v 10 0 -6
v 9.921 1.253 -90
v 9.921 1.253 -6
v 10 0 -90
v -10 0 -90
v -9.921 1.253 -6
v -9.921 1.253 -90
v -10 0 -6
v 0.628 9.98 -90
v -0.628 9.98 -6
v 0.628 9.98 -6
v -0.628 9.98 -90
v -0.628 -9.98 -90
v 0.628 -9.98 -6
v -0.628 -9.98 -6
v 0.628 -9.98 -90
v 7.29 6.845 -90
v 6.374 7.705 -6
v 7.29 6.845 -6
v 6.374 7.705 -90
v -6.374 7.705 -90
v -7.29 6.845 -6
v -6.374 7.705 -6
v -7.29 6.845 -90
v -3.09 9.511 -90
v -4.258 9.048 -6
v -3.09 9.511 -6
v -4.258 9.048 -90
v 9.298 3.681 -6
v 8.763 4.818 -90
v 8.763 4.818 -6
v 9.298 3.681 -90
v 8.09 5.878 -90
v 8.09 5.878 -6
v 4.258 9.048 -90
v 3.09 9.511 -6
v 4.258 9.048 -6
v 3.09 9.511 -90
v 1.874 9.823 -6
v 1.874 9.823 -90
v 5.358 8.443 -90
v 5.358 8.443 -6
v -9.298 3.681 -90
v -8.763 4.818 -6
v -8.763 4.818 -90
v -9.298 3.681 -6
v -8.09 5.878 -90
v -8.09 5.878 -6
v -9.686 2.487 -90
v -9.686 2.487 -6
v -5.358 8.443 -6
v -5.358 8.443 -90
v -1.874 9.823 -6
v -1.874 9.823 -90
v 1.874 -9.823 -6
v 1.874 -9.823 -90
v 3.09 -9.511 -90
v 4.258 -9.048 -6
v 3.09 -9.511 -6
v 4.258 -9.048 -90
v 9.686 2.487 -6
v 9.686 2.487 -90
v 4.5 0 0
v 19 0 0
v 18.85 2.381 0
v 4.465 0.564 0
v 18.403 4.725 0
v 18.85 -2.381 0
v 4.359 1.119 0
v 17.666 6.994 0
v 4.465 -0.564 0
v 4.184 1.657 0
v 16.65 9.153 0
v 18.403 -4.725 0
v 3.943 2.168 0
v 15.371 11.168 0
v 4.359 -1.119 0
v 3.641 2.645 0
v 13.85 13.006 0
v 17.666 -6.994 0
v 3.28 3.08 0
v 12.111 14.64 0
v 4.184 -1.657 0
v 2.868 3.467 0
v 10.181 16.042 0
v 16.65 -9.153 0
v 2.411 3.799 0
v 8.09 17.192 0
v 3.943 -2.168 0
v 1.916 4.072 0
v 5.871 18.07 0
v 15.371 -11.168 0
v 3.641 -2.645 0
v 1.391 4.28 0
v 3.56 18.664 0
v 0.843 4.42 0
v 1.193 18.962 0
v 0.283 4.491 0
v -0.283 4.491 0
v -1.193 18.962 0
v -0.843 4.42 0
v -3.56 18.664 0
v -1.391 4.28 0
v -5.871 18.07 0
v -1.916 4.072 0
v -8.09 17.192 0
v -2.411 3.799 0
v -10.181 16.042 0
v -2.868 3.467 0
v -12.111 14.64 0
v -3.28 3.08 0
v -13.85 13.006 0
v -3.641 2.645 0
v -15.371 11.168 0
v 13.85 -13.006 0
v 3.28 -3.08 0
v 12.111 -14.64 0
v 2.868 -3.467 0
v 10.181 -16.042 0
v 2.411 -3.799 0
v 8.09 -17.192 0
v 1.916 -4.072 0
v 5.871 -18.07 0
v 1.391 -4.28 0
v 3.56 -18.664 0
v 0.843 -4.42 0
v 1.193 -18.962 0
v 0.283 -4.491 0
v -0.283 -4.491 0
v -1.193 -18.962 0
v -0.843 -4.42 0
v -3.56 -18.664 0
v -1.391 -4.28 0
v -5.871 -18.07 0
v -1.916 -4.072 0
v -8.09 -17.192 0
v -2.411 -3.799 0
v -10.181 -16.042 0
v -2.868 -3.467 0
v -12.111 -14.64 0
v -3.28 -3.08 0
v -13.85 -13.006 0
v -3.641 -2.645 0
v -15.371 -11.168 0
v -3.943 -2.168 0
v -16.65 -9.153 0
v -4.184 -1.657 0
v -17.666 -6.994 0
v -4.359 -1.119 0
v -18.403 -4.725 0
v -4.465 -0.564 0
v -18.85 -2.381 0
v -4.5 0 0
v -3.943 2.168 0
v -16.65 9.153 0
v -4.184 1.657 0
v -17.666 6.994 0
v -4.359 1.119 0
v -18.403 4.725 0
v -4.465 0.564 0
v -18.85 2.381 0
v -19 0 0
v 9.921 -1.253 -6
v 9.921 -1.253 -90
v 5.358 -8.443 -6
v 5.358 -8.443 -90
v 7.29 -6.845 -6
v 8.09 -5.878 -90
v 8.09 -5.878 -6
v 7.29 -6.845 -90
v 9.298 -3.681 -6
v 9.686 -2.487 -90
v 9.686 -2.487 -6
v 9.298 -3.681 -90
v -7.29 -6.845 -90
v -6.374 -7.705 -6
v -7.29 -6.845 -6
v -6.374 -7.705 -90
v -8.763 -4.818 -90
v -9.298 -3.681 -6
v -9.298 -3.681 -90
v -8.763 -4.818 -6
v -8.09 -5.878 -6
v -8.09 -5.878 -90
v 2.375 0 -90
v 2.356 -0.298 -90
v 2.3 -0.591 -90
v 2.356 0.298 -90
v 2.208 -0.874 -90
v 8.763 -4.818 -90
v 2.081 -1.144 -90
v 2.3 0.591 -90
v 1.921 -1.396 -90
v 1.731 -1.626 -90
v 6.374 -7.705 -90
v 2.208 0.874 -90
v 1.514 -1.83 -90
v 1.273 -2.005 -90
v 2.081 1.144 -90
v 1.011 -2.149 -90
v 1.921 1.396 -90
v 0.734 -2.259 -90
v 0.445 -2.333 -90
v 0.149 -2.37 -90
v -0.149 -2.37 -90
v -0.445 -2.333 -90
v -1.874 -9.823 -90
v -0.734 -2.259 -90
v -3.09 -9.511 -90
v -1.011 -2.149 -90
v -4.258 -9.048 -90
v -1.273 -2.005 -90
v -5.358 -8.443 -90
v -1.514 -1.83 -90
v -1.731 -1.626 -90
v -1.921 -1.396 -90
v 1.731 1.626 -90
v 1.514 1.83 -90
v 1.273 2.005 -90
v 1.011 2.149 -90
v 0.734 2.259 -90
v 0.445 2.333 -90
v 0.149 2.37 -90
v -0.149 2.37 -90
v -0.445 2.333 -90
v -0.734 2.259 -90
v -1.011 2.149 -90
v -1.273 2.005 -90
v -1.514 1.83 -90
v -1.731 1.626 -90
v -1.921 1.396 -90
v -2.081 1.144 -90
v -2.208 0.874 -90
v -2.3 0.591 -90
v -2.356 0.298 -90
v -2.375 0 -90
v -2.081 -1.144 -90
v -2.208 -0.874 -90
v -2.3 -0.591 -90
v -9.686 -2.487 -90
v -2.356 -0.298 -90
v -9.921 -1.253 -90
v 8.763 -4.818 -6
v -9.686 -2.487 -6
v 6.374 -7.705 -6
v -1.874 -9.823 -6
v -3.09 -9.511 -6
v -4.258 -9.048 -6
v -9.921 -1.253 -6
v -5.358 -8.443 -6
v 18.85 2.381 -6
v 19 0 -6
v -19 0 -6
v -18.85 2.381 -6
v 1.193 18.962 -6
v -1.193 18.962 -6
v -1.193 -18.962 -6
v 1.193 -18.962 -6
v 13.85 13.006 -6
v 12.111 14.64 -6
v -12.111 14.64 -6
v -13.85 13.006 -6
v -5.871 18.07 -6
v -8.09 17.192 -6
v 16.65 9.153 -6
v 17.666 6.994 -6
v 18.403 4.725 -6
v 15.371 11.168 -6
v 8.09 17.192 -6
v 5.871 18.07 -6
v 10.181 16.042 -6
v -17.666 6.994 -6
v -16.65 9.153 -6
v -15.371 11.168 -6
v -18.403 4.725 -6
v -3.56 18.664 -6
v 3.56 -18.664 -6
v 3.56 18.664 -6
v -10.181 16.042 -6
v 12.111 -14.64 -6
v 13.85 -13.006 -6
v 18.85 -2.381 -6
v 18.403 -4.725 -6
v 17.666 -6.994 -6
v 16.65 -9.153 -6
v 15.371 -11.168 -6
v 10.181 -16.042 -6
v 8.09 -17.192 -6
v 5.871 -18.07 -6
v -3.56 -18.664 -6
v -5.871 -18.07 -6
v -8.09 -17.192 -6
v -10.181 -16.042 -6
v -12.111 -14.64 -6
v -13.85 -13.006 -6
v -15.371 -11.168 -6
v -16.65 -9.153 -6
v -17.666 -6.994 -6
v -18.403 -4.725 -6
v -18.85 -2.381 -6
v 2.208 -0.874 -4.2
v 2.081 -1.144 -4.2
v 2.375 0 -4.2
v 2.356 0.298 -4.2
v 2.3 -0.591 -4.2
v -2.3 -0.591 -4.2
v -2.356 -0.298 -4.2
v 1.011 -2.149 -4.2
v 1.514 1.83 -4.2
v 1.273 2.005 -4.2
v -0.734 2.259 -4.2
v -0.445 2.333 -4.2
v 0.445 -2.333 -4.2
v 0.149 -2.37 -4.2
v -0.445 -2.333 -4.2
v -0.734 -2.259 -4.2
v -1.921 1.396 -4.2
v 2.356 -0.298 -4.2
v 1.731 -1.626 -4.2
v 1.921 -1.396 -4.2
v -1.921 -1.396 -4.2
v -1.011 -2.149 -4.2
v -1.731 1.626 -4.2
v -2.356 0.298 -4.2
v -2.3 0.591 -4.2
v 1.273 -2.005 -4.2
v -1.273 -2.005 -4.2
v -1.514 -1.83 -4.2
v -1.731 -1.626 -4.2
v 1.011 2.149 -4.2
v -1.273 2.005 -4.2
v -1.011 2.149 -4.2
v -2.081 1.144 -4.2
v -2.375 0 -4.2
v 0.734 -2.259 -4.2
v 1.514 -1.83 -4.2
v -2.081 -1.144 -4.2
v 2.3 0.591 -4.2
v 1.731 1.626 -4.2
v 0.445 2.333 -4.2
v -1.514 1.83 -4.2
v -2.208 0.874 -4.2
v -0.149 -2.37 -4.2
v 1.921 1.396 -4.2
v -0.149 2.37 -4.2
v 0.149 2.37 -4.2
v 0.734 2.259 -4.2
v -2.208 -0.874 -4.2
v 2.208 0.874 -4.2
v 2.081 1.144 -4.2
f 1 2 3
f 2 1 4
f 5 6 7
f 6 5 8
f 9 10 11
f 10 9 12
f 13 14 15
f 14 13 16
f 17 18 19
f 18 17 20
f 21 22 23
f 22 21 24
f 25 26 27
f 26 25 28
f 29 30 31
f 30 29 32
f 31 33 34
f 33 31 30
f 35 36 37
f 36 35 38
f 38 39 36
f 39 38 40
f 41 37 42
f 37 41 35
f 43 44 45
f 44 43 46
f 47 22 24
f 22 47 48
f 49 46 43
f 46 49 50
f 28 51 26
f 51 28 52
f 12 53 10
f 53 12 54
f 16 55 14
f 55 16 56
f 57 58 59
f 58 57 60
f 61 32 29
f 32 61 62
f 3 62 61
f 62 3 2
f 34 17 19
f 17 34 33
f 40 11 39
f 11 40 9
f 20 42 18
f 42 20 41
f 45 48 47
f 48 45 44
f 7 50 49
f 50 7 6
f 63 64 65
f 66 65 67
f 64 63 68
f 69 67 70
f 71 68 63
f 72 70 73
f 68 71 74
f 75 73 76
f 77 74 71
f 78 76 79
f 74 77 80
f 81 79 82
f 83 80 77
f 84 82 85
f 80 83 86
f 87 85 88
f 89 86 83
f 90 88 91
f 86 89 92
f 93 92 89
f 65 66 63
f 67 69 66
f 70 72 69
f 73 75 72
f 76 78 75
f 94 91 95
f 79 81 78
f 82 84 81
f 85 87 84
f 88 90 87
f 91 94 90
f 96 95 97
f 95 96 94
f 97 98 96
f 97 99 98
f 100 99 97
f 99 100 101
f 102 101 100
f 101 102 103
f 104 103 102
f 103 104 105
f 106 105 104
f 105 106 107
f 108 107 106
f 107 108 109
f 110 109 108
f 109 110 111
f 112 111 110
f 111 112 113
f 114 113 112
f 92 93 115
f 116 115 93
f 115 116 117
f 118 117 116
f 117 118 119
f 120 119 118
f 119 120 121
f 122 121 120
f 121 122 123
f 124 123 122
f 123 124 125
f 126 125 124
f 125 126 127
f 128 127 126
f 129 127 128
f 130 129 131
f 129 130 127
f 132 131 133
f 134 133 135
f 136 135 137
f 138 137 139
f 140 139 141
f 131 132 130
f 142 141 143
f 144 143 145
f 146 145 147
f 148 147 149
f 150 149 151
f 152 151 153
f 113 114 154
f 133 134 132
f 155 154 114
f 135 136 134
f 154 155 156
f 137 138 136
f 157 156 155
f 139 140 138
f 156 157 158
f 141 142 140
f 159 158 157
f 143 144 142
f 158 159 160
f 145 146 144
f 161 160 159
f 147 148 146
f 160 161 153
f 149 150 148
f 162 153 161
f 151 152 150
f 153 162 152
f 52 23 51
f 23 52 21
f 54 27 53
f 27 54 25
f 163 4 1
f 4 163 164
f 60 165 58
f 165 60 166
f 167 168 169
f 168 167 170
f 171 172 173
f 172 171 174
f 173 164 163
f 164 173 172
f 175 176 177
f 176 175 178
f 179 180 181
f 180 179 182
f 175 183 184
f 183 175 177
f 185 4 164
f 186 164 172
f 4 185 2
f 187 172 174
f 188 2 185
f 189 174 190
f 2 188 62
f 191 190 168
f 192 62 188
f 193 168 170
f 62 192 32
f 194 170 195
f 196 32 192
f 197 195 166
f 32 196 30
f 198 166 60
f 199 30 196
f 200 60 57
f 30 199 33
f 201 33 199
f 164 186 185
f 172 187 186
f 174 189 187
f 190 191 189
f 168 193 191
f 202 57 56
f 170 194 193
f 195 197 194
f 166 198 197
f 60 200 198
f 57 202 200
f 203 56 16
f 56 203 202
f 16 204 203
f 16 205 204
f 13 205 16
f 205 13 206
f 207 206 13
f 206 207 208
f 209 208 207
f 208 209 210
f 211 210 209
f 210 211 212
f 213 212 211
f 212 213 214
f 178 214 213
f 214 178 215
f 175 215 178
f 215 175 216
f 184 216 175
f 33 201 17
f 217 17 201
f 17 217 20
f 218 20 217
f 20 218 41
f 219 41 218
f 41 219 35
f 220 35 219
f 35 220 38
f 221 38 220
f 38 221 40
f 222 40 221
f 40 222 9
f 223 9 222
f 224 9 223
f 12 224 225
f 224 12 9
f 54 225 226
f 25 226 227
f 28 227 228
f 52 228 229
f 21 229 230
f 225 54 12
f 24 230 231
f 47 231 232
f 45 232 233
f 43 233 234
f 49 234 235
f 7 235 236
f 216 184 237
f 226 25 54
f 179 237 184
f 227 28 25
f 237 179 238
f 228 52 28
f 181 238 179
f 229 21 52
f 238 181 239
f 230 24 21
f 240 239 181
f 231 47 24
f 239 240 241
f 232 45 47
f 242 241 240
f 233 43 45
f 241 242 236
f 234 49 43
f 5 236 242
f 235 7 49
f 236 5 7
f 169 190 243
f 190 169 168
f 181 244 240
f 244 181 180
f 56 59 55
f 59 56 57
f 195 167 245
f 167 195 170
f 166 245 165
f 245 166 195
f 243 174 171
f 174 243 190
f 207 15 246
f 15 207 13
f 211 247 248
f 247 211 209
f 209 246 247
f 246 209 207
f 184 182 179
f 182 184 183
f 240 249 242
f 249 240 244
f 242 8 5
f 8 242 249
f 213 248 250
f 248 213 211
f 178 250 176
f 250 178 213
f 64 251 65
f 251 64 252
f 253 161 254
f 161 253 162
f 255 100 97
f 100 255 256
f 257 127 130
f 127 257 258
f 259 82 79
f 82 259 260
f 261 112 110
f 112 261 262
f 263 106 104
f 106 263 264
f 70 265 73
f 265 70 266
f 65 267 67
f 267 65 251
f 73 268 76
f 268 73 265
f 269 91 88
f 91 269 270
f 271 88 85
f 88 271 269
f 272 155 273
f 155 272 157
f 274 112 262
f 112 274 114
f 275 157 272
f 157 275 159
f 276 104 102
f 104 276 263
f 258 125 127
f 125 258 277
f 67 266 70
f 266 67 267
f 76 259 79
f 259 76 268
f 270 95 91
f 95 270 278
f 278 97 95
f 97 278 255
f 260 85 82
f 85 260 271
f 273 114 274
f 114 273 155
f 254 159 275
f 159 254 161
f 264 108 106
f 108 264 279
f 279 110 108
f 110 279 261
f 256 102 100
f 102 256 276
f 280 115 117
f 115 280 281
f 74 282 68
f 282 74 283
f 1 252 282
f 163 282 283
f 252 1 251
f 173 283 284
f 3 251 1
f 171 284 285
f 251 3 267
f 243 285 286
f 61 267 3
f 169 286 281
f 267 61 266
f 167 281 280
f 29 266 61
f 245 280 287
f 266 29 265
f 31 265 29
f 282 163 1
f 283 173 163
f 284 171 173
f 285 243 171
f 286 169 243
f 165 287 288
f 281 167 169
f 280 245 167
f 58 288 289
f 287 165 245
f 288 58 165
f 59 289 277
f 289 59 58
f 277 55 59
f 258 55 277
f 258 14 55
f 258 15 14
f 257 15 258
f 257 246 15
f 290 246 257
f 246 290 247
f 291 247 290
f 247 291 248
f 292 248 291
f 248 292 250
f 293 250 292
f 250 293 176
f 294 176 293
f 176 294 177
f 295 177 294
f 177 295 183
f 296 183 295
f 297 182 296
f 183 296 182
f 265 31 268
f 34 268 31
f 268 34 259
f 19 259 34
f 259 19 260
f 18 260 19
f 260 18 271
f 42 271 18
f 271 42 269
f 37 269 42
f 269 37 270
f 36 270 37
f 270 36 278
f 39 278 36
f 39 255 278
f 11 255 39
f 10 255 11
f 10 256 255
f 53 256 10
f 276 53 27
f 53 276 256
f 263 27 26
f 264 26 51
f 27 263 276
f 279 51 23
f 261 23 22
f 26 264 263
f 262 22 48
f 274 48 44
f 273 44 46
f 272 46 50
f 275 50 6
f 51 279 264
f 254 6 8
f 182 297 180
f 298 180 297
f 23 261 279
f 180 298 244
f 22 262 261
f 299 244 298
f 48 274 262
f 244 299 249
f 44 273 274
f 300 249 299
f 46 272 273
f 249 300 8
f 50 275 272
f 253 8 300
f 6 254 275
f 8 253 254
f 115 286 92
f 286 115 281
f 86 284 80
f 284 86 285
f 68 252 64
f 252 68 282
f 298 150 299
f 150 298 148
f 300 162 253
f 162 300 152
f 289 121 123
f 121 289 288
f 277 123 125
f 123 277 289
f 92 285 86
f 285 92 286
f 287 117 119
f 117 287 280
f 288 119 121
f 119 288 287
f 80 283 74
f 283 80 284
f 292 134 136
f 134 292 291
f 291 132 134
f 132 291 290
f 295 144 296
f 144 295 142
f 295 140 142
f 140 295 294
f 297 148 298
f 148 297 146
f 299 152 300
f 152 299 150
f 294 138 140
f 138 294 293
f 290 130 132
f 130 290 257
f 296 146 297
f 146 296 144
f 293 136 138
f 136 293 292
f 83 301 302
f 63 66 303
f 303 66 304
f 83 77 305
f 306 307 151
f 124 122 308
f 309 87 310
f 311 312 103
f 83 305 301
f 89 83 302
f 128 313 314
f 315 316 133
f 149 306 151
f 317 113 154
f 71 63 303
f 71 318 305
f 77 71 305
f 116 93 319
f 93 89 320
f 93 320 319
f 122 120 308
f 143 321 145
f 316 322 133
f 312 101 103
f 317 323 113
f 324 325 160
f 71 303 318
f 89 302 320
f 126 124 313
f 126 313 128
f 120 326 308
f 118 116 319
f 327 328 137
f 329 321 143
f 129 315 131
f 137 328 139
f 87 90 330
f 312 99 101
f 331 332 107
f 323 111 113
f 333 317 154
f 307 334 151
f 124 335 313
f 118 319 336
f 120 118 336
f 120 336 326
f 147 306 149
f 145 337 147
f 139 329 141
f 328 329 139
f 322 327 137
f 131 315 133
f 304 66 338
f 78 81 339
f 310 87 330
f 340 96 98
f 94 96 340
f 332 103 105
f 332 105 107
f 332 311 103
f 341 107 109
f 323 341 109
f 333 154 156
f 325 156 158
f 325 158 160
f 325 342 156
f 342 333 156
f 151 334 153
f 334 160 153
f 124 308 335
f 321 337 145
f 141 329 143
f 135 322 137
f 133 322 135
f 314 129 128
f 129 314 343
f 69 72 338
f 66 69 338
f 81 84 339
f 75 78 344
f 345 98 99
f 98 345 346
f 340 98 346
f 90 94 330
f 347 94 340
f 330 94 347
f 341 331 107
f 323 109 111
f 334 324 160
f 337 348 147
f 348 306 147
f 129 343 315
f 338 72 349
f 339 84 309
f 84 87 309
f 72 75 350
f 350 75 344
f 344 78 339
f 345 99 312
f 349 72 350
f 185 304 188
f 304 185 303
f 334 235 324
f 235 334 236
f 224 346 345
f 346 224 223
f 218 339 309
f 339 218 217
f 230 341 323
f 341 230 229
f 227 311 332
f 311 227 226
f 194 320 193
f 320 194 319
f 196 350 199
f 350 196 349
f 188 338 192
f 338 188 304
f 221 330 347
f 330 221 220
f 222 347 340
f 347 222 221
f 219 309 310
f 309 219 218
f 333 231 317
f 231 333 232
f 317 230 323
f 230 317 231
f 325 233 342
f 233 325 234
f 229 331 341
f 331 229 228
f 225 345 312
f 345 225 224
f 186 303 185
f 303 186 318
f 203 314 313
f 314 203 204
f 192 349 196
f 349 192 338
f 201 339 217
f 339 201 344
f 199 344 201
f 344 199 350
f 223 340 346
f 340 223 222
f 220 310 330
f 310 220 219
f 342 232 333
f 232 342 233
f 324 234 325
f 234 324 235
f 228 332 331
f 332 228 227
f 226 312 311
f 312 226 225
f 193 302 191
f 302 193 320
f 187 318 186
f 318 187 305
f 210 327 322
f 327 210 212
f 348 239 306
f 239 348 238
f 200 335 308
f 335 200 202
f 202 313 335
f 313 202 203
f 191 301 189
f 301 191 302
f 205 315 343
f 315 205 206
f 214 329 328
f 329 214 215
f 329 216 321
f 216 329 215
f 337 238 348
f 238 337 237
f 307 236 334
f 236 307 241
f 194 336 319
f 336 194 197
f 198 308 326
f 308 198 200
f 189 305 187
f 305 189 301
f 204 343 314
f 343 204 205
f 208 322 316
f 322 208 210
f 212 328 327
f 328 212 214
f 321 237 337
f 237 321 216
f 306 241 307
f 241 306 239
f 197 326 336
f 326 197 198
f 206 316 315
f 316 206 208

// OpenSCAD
$fn = 50;


difference() {
	union() {
		translate(v = [0, 0, -90.0000000000]) {
			cylinder(h = 90, r = 10.0000000000);
		}
		translate(v = [0, 0, -6.0000000000]) {
			cylinder(h = 6, r = 19.0000000000);
		}
	}
	union() {
		translate(v = [0, 0, 0]) {
			rotate(a = [0, 0, 0]) {
				difference() {
					union() {
						#translate(v = [0, 0, -90.0000000000]) {
							cylinder(h = 90, r = 2.2500000000);
						}
						#translate(v = [0, 0, -4.2000000000]) {
							cylinder(h = 4.2000000000, r = 10.0000000000, r1 = 2.3750000000, r2 = 4.5000000000);
						}
						#translate(v = [0, 0, -90.0000000000]) {
							cylinder(h = 90, r = 2.3750000000);
						}
						#translate(v = [0, 0, -90.0000000000]) {
							cylinder(h = 90, r = 2.2500000000);
						}
					}
					union();
				}
			}
		}
	}
}
